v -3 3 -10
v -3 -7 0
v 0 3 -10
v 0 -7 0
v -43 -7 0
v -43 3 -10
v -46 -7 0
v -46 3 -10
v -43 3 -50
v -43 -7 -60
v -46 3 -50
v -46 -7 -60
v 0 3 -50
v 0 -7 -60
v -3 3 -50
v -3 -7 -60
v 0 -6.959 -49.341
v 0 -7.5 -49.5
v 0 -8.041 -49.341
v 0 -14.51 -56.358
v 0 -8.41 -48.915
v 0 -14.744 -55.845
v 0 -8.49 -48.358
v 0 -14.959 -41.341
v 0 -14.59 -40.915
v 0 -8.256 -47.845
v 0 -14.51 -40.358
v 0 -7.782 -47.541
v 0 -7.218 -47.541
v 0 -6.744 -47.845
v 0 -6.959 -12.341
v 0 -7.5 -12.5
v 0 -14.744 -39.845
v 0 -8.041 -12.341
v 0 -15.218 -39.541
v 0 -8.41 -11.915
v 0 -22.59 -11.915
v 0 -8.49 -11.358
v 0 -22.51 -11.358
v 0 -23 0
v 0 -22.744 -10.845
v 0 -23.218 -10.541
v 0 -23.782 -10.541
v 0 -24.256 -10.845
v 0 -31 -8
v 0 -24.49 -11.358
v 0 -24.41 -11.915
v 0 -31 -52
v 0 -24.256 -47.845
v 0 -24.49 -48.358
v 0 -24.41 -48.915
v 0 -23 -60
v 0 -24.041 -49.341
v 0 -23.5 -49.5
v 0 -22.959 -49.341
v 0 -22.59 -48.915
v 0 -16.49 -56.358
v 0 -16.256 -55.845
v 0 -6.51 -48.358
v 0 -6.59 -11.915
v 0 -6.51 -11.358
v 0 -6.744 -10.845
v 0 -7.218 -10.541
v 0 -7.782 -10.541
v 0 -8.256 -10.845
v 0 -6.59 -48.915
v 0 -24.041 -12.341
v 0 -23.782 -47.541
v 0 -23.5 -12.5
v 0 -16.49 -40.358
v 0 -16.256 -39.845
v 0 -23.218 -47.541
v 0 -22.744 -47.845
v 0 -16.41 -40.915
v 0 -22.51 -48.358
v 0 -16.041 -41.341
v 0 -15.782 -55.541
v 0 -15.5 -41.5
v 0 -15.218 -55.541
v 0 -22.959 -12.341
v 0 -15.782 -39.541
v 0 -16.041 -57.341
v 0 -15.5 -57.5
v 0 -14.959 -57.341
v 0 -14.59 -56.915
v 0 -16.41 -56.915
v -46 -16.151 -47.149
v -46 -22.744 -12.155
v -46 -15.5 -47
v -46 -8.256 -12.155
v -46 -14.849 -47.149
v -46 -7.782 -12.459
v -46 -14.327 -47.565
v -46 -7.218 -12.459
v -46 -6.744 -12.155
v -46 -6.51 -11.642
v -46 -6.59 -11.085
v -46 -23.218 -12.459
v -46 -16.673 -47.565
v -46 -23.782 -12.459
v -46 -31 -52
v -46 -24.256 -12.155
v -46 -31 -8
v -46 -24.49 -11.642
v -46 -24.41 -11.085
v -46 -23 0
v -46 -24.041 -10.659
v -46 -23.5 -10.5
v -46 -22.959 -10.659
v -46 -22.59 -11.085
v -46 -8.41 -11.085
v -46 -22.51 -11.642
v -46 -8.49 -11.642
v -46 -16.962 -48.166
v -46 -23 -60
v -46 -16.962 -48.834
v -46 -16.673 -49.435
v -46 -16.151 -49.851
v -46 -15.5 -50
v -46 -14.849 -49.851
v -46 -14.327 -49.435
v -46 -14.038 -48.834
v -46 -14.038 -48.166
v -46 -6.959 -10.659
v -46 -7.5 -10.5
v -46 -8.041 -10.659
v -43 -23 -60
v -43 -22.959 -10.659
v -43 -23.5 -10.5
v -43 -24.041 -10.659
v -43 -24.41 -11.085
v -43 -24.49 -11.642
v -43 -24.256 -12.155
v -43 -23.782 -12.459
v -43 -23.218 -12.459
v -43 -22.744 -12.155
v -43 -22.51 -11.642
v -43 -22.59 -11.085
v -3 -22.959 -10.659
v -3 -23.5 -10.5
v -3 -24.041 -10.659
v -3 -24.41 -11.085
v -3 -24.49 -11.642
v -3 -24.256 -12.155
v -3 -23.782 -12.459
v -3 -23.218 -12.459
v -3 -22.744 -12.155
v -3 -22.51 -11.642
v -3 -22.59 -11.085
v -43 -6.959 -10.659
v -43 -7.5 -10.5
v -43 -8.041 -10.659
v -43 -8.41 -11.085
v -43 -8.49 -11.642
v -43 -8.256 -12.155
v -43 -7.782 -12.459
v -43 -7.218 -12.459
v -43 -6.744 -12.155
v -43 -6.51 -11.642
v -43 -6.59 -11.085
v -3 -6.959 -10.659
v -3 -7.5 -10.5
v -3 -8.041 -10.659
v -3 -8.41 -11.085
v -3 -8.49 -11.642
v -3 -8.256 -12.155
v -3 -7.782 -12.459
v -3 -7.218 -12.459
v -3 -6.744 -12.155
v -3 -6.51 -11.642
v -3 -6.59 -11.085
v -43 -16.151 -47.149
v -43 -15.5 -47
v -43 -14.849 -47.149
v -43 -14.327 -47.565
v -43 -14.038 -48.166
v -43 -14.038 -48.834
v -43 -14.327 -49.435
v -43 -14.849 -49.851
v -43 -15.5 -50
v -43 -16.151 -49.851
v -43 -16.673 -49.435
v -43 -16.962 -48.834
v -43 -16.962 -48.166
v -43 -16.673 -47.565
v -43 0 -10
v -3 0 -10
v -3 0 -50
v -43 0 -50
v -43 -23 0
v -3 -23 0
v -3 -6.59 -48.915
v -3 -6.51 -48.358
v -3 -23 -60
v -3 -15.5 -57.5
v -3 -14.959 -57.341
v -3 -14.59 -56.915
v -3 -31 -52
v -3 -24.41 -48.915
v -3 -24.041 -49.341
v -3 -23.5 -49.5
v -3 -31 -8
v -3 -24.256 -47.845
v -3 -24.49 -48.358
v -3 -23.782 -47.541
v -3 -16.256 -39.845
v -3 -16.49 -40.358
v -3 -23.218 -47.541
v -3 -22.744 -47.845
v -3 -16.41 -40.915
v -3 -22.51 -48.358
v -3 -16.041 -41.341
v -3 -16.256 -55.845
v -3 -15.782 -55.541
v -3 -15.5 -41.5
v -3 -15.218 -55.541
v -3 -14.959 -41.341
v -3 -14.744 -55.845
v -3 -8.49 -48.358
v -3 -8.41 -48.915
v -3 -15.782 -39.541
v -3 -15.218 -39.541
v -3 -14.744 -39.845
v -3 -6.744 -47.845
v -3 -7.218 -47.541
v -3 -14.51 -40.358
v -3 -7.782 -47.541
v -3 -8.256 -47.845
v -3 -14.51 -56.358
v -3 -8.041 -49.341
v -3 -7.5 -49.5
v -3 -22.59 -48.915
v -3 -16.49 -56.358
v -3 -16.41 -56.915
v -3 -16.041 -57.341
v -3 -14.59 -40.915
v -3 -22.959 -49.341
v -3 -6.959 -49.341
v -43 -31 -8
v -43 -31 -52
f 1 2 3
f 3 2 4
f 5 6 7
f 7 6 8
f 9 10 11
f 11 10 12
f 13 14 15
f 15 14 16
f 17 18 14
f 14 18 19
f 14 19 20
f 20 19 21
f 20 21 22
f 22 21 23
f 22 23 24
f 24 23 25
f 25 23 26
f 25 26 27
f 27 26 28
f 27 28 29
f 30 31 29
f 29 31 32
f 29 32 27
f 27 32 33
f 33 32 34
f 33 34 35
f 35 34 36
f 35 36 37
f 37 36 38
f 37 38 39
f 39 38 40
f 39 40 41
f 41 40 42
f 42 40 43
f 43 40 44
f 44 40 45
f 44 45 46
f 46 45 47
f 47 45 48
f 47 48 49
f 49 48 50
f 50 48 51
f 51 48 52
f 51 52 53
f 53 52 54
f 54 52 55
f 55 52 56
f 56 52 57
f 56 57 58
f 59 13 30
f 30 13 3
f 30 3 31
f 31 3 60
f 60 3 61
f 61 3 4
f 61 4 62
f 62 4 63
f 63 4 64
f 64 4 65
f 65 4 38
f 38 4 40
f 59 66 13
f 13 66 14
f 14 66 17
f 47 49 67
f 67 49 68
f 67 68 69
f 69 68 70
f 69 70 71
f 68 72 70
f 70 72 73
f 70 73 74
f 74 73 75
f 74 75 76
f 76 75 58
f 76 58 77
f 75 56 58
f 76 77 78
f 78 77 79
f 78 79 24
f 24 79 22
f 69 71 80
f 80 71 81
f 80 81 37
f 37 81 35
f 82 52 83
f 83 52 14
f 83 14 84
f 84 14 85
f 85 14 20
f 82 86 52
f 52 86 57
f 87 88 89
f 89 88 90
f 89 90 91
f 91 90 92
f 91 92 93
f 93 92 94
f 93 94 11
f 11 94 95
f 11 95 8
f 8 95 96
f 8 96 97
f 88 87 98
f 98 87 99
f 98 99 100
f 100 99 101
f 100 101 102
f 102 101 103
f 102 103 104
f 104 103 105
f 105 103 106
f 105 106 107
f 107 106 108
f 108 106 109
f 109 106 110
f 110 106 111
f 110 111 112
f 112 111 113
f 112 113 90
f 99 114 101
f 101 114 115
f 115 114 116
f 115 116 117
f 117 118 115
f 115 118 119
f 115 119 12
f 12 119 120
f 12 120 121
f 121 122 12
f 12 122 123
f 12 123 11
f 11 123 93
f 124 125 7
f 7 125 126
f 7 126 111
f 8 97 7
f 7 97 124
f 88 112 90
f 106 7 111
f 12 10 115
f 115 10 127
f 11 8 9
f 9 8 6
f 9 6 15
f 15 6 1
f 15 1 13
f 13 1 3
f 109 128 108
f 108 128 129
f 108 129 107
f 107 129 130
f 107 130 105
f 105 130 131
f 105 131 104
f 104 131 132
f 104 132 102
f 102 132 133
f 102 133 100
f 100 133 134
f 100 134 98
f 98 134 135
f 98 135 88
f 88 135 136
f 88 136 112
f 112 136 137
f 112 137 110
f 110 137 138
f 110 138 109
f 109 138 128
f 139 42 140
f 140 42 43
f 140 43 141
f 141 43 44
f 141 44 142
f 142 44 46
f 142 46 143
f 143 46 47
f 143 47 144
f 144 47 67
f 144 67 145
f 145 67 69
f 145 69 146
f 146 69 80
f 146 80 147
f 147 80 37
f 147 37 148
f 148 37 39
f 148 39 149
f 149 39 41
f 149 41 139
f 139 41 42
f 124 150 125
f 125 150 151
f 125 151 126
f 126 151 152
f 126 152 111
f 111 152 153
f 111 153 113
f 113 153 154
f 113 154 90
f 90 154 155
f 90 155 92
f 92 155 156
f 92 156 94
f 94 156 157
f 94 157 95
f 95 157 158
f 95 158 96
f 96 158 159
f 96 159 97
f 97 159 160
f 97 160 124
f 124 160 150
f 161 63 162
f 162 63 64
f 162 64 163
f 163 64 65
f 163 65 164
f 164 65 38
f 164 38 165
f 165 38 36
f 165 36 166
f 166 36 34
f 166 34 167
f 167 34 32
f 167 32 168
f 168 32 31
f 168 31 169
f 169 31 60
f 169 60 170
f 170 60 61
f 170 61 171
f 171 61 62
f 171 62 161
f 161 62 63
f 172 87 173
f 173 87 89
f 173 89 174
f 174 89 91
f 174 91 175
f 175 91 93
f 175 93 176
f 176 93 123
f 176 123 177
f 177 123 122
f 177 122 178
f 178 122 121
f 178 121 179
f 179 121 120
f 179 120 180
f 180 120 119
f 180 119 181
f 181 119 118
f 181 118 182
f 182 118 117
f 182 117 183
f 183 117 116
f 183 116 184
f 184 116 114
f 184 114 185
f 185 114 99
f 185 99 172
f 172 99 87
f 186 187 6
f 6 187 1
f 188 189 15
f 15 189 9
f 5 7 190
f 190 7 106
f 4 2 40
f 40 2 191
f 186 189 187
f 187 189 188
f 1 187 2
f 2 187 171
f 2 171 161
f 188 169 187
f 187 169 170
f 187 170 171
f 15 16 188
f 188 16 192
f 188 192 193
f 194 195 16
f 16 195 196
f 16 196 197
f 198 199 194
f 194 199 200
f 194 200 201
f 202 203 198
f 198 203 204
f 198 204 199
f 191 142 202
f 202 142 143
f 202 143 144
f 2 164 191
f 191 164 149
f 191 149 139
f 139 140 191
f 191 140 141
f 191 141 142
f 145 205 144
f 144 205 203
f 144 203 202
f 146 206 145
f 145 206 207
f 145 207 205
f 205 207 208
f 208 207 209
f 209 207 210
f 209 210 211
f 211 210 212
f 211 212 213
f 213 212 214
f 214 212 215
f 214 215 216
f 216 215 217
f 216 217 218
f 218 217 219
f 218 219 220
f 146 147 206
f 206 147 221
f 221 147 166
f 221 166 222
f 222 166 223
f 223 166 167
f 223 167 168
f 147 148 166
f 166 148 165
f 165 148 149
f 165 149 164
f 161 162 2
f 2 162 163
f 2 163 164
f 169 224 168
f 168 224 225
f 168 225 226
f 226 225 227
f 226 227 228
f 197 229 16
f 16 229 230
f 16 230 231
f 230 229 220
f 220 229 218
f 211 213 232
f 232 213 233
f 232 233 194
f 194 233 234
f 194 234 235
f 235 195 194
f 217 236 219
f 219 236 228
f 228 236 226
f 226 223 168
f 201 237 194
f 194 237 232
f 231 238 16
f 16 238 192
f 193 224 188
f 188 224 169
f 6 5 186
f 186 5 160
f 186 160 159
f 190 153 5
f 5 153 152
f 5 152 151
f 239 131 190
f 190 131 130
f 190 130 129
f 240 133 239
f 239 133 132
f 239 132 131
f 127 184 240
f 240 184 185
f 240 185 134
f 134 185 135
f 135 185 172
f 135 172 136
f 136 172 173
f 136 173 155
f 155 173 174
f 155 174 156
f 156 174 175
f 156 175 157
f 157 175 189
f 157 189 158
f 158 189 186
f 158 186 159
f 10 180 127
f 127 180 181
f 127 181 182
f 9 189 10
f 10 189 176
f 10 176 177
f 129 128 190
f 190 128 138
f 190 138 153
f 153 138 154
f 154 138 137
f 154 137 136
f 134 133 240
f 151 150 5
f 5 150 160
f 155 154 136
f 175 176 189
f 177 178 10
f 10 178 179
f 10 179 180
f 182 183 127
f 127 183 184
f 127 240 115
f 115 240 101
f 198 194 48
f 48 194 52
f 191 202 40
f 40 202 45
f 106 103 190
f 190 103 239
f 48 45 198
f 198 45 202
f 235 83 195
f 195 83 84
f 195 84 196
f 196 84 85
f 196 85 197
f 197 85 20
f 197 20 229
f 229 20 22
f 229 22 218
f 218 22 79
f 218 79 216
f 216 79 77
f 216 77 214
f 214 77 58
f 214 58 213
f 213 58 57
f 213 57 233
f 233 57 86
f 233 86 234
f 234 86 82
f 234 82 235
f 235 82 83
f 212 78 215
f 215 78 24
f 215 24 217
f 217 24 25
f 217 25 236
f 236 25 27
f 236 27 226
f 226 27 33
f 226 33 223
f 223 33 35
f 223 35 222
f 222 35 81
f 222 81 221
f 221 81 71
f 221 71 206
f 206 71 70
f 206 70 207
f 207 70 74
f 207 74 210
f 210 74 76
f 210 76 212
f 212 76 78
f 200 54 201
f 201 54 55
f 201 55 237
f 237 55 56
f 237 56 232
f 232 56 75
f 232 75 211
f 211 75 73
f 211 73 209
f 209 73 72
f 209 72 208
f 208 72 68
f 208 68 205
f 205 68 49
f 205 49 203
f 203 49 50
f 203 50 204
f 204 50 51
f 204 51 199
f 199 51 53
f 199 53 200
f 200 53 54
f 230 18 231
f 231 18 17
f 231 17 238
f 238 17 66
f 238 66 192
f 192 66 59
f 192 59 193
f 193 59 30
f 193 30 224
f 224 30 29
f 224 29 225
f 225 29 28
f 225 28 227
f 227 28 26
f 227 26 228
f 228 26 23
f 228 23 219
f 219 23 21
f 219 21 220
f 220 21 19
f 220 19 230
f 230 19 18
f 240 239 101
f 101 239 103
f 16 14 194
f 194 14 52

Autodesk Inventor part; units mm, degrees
ref_plane "YZ Plane" through (0, 0, 0) normal (1, 0, 0) x (0, 1, 0)
ref_plane "XZ Plane" through (0, 0, 0) normal (0, 1, 0) x (-1, 0, 0)
ref_plane "XY Plane" through (0, 0, 0) normal (0, 0, 1) x (1, 0, 0)
sketch "Sketch1" plane through (0, 0, 0) normal (0, 1, 0) x (-1, 0, 0)
  line L0 (0, 0) -> (46, 0)
  line L1 (46, 0) -> (46, -60)
  line L2 (46, -60) -> (0, -60)
  line L3 (0, -60) -> (0, 0)
  dimension "d0" = 46
  dimension "d1" = 60
extrude "Extrusion1" add sketch "Sketch1" along normal blind 3
sketch "Sketch2" plane through (0, 0, 0) normal (0, -1, 0) x (1, 0, 0)
  line L0 (-46, -60) -> (-46, 0) projected
  line L1 (-46, 0) -> (0, 0) projected
  line L2 (-46, -60) -> (-43, -60)
  line L3 (-43, -60) -> (-43, 0)
  line L4 (-43, 0) -> (-46, 0)
  line L5 (-46, 0) -> (-46, -60)
  line L6 (0, -60) -> (-46, -60) projected
  line L7 (0, -60) -> (-3, -60)
  line L8 (-3, -60) -> (-3, 0)
  line L9 (-3, 0) -> (0, 0)
  line L10 (0, 0) -> (0, -60)
  dimension "d4" = 3
  dimension "d5" = 3
  dimension "d6" = 60
extrude "Extrusion2" add sketch "Sketch2" along normal blind 31 contours L0 L1 L3 L2 | L8 L1 L10 L6
sketch "Sketch3" plane through (0, 3, 0) normal (1, 0, 0) x (0, 0, -1)
  line L0 (0, -3) -> (0, -34) projected
  line L1 (60, -3) -> (60, -34) projected
  line L2 (60, -18.5) -> (48.5, -18.5)
  circle A0 centre (40.5, -18.5) radius 1
  circle A1 centre (48.5, -26.5) radius 1
  circle A2 centre (56.5, -18.5) radius 1
  circle A3 centre (48.5, -10.5) radius 1
  line L3 (60, -34) -> (0, -34) projected
  dimension "d16" = 11.5
  dimension "d17" = 2
  dimension "d18" = 8
  dimension "d21" = 360
  dimension "d40" = 15.5
extrude "Extrusion3" cut sketch "Sketch3" against normal blind 3
sketch "Sketch4" plane through (0, 3, 0) normal (1, 0, 0) x (0, 0, -1)
  point P0 (0, -3)
sketch "Sketch5" plane through (0, 3, 0) normal (1, 0, 0) x (0, 0, -1)
  line L0 (0, -34) -> (0, 0) projected
  line L1 (0, -26) -> (8, -34)
  line L2 (60, -34) -> (0, -34) projected
  line L3 (52, -34) -> (60, -26)
  line L4 (60, 0) -> (60, -34) projected
  point P0 (0, -3)
  dimension "d25" = 8
  dimension "d26" = 8
  dimension "d27" = 8
  dimension "d28" = 8
extrude "Extrusion4" cut sketch "Sketch5" against normal blind 50
sketch "Sketch6" plane through (0, 3, 0) normal (0, 1, 0) x (1, 0, 0)
  line L0 (-3, 60) -> (-3, 0) projected
  line L1 (-43, 60) -> (-3, 60)
  line L2 (-3, 60) -> (-3, 50)
  line L3 (-3, 50) -> (-43, 50)
  line L4 (-43, 50) -> (-43, 60)
  line L5 (-43, 0) -> (-3, 0) projected
  line L6 (-3, 0) -> (-43, 0)
  line L7 (-43, 0) -> (-43, 10)
  line L8 (-43, 10) -> (-3, 10)
  line L9 (-3, 10) -> (-3, 0)
  point P0 (0, 0)
  dimension "d31" = 10
  dimension "d32" = 40
  dimension "d33" = 10
extrude "Extrusion5" cut sketch "Sketch6" against normal blind 10
sketch "Sketch8" plane through (-46, 3, -60) normal (-1, 0, 0) x (0, 0, 1)
  line L0 (8, -34) -> (52, -34) projected
  line L1 (11.5, -34) -> (11.5, -18.5)
  line L2 (11.5, -34) -> (27, -34) construction
  circle A0 centre (11.5, -18.5) radius 1.5
  line L3 (0, -26) -> (0, 0) projected
  point P0 (60, -3)
  dimension "d38" = 15.5
  dimension "d39" = 90
  dimension "d41" = 3
  dimension "d42" = 11.5
extrude "Extrusion7" cut sketch "Sketch8" against normal blind 3
sketch "Sketch9" plane through (0, 3, 0) normal (1, 0, 0) x (0, 0, -1)
  line L0 (0, -26) -> (0, 0) projected
  line L1 (0, -18.5) -> (11.5, -18.5)
  line L2 (0, -18.5) -> (11.5, -18.5) construction
  line L3 (52, -34) -> (8, -34) projected
  circle A0 centre (11.5, -10.5) radius 1
  circle A1 centre (11.5, -26.5) radius 1
  point P0 (0, -3)
  dimension "d47" = 11.5
  dimension "d49" = 15.5
  dimension "d50" = 2
  dimension "d51" = 8
extrude "Extrusion8" cut sketch "Sketch9" against normal blind 50
sketch "Sketch10" plane through (-46, 3, -60) normal (-1, 0, 0) x (0, 0, 1)
  line L0 (10, 0) -> (10, -3) projected
  line L1 (10, 0) -> (0, -10)
  line L2 (0, 0) -> (0, -26) projected
  line L3 (0, 0) -> (60, 0) projected
  line L4 (50, 0) -> (60, -10)
  line L5 (60, -26) -> (60, 0) projected
  point P0 (60, -3)
  dimension "d54" = 10
  dimension "d55" = 10
  dimension "d56" = 10
  dimension "d57" = 10
extrude "Extrusion9" cut sketch "Sketch10" against normal blind 50
properties part number "second_junction"
